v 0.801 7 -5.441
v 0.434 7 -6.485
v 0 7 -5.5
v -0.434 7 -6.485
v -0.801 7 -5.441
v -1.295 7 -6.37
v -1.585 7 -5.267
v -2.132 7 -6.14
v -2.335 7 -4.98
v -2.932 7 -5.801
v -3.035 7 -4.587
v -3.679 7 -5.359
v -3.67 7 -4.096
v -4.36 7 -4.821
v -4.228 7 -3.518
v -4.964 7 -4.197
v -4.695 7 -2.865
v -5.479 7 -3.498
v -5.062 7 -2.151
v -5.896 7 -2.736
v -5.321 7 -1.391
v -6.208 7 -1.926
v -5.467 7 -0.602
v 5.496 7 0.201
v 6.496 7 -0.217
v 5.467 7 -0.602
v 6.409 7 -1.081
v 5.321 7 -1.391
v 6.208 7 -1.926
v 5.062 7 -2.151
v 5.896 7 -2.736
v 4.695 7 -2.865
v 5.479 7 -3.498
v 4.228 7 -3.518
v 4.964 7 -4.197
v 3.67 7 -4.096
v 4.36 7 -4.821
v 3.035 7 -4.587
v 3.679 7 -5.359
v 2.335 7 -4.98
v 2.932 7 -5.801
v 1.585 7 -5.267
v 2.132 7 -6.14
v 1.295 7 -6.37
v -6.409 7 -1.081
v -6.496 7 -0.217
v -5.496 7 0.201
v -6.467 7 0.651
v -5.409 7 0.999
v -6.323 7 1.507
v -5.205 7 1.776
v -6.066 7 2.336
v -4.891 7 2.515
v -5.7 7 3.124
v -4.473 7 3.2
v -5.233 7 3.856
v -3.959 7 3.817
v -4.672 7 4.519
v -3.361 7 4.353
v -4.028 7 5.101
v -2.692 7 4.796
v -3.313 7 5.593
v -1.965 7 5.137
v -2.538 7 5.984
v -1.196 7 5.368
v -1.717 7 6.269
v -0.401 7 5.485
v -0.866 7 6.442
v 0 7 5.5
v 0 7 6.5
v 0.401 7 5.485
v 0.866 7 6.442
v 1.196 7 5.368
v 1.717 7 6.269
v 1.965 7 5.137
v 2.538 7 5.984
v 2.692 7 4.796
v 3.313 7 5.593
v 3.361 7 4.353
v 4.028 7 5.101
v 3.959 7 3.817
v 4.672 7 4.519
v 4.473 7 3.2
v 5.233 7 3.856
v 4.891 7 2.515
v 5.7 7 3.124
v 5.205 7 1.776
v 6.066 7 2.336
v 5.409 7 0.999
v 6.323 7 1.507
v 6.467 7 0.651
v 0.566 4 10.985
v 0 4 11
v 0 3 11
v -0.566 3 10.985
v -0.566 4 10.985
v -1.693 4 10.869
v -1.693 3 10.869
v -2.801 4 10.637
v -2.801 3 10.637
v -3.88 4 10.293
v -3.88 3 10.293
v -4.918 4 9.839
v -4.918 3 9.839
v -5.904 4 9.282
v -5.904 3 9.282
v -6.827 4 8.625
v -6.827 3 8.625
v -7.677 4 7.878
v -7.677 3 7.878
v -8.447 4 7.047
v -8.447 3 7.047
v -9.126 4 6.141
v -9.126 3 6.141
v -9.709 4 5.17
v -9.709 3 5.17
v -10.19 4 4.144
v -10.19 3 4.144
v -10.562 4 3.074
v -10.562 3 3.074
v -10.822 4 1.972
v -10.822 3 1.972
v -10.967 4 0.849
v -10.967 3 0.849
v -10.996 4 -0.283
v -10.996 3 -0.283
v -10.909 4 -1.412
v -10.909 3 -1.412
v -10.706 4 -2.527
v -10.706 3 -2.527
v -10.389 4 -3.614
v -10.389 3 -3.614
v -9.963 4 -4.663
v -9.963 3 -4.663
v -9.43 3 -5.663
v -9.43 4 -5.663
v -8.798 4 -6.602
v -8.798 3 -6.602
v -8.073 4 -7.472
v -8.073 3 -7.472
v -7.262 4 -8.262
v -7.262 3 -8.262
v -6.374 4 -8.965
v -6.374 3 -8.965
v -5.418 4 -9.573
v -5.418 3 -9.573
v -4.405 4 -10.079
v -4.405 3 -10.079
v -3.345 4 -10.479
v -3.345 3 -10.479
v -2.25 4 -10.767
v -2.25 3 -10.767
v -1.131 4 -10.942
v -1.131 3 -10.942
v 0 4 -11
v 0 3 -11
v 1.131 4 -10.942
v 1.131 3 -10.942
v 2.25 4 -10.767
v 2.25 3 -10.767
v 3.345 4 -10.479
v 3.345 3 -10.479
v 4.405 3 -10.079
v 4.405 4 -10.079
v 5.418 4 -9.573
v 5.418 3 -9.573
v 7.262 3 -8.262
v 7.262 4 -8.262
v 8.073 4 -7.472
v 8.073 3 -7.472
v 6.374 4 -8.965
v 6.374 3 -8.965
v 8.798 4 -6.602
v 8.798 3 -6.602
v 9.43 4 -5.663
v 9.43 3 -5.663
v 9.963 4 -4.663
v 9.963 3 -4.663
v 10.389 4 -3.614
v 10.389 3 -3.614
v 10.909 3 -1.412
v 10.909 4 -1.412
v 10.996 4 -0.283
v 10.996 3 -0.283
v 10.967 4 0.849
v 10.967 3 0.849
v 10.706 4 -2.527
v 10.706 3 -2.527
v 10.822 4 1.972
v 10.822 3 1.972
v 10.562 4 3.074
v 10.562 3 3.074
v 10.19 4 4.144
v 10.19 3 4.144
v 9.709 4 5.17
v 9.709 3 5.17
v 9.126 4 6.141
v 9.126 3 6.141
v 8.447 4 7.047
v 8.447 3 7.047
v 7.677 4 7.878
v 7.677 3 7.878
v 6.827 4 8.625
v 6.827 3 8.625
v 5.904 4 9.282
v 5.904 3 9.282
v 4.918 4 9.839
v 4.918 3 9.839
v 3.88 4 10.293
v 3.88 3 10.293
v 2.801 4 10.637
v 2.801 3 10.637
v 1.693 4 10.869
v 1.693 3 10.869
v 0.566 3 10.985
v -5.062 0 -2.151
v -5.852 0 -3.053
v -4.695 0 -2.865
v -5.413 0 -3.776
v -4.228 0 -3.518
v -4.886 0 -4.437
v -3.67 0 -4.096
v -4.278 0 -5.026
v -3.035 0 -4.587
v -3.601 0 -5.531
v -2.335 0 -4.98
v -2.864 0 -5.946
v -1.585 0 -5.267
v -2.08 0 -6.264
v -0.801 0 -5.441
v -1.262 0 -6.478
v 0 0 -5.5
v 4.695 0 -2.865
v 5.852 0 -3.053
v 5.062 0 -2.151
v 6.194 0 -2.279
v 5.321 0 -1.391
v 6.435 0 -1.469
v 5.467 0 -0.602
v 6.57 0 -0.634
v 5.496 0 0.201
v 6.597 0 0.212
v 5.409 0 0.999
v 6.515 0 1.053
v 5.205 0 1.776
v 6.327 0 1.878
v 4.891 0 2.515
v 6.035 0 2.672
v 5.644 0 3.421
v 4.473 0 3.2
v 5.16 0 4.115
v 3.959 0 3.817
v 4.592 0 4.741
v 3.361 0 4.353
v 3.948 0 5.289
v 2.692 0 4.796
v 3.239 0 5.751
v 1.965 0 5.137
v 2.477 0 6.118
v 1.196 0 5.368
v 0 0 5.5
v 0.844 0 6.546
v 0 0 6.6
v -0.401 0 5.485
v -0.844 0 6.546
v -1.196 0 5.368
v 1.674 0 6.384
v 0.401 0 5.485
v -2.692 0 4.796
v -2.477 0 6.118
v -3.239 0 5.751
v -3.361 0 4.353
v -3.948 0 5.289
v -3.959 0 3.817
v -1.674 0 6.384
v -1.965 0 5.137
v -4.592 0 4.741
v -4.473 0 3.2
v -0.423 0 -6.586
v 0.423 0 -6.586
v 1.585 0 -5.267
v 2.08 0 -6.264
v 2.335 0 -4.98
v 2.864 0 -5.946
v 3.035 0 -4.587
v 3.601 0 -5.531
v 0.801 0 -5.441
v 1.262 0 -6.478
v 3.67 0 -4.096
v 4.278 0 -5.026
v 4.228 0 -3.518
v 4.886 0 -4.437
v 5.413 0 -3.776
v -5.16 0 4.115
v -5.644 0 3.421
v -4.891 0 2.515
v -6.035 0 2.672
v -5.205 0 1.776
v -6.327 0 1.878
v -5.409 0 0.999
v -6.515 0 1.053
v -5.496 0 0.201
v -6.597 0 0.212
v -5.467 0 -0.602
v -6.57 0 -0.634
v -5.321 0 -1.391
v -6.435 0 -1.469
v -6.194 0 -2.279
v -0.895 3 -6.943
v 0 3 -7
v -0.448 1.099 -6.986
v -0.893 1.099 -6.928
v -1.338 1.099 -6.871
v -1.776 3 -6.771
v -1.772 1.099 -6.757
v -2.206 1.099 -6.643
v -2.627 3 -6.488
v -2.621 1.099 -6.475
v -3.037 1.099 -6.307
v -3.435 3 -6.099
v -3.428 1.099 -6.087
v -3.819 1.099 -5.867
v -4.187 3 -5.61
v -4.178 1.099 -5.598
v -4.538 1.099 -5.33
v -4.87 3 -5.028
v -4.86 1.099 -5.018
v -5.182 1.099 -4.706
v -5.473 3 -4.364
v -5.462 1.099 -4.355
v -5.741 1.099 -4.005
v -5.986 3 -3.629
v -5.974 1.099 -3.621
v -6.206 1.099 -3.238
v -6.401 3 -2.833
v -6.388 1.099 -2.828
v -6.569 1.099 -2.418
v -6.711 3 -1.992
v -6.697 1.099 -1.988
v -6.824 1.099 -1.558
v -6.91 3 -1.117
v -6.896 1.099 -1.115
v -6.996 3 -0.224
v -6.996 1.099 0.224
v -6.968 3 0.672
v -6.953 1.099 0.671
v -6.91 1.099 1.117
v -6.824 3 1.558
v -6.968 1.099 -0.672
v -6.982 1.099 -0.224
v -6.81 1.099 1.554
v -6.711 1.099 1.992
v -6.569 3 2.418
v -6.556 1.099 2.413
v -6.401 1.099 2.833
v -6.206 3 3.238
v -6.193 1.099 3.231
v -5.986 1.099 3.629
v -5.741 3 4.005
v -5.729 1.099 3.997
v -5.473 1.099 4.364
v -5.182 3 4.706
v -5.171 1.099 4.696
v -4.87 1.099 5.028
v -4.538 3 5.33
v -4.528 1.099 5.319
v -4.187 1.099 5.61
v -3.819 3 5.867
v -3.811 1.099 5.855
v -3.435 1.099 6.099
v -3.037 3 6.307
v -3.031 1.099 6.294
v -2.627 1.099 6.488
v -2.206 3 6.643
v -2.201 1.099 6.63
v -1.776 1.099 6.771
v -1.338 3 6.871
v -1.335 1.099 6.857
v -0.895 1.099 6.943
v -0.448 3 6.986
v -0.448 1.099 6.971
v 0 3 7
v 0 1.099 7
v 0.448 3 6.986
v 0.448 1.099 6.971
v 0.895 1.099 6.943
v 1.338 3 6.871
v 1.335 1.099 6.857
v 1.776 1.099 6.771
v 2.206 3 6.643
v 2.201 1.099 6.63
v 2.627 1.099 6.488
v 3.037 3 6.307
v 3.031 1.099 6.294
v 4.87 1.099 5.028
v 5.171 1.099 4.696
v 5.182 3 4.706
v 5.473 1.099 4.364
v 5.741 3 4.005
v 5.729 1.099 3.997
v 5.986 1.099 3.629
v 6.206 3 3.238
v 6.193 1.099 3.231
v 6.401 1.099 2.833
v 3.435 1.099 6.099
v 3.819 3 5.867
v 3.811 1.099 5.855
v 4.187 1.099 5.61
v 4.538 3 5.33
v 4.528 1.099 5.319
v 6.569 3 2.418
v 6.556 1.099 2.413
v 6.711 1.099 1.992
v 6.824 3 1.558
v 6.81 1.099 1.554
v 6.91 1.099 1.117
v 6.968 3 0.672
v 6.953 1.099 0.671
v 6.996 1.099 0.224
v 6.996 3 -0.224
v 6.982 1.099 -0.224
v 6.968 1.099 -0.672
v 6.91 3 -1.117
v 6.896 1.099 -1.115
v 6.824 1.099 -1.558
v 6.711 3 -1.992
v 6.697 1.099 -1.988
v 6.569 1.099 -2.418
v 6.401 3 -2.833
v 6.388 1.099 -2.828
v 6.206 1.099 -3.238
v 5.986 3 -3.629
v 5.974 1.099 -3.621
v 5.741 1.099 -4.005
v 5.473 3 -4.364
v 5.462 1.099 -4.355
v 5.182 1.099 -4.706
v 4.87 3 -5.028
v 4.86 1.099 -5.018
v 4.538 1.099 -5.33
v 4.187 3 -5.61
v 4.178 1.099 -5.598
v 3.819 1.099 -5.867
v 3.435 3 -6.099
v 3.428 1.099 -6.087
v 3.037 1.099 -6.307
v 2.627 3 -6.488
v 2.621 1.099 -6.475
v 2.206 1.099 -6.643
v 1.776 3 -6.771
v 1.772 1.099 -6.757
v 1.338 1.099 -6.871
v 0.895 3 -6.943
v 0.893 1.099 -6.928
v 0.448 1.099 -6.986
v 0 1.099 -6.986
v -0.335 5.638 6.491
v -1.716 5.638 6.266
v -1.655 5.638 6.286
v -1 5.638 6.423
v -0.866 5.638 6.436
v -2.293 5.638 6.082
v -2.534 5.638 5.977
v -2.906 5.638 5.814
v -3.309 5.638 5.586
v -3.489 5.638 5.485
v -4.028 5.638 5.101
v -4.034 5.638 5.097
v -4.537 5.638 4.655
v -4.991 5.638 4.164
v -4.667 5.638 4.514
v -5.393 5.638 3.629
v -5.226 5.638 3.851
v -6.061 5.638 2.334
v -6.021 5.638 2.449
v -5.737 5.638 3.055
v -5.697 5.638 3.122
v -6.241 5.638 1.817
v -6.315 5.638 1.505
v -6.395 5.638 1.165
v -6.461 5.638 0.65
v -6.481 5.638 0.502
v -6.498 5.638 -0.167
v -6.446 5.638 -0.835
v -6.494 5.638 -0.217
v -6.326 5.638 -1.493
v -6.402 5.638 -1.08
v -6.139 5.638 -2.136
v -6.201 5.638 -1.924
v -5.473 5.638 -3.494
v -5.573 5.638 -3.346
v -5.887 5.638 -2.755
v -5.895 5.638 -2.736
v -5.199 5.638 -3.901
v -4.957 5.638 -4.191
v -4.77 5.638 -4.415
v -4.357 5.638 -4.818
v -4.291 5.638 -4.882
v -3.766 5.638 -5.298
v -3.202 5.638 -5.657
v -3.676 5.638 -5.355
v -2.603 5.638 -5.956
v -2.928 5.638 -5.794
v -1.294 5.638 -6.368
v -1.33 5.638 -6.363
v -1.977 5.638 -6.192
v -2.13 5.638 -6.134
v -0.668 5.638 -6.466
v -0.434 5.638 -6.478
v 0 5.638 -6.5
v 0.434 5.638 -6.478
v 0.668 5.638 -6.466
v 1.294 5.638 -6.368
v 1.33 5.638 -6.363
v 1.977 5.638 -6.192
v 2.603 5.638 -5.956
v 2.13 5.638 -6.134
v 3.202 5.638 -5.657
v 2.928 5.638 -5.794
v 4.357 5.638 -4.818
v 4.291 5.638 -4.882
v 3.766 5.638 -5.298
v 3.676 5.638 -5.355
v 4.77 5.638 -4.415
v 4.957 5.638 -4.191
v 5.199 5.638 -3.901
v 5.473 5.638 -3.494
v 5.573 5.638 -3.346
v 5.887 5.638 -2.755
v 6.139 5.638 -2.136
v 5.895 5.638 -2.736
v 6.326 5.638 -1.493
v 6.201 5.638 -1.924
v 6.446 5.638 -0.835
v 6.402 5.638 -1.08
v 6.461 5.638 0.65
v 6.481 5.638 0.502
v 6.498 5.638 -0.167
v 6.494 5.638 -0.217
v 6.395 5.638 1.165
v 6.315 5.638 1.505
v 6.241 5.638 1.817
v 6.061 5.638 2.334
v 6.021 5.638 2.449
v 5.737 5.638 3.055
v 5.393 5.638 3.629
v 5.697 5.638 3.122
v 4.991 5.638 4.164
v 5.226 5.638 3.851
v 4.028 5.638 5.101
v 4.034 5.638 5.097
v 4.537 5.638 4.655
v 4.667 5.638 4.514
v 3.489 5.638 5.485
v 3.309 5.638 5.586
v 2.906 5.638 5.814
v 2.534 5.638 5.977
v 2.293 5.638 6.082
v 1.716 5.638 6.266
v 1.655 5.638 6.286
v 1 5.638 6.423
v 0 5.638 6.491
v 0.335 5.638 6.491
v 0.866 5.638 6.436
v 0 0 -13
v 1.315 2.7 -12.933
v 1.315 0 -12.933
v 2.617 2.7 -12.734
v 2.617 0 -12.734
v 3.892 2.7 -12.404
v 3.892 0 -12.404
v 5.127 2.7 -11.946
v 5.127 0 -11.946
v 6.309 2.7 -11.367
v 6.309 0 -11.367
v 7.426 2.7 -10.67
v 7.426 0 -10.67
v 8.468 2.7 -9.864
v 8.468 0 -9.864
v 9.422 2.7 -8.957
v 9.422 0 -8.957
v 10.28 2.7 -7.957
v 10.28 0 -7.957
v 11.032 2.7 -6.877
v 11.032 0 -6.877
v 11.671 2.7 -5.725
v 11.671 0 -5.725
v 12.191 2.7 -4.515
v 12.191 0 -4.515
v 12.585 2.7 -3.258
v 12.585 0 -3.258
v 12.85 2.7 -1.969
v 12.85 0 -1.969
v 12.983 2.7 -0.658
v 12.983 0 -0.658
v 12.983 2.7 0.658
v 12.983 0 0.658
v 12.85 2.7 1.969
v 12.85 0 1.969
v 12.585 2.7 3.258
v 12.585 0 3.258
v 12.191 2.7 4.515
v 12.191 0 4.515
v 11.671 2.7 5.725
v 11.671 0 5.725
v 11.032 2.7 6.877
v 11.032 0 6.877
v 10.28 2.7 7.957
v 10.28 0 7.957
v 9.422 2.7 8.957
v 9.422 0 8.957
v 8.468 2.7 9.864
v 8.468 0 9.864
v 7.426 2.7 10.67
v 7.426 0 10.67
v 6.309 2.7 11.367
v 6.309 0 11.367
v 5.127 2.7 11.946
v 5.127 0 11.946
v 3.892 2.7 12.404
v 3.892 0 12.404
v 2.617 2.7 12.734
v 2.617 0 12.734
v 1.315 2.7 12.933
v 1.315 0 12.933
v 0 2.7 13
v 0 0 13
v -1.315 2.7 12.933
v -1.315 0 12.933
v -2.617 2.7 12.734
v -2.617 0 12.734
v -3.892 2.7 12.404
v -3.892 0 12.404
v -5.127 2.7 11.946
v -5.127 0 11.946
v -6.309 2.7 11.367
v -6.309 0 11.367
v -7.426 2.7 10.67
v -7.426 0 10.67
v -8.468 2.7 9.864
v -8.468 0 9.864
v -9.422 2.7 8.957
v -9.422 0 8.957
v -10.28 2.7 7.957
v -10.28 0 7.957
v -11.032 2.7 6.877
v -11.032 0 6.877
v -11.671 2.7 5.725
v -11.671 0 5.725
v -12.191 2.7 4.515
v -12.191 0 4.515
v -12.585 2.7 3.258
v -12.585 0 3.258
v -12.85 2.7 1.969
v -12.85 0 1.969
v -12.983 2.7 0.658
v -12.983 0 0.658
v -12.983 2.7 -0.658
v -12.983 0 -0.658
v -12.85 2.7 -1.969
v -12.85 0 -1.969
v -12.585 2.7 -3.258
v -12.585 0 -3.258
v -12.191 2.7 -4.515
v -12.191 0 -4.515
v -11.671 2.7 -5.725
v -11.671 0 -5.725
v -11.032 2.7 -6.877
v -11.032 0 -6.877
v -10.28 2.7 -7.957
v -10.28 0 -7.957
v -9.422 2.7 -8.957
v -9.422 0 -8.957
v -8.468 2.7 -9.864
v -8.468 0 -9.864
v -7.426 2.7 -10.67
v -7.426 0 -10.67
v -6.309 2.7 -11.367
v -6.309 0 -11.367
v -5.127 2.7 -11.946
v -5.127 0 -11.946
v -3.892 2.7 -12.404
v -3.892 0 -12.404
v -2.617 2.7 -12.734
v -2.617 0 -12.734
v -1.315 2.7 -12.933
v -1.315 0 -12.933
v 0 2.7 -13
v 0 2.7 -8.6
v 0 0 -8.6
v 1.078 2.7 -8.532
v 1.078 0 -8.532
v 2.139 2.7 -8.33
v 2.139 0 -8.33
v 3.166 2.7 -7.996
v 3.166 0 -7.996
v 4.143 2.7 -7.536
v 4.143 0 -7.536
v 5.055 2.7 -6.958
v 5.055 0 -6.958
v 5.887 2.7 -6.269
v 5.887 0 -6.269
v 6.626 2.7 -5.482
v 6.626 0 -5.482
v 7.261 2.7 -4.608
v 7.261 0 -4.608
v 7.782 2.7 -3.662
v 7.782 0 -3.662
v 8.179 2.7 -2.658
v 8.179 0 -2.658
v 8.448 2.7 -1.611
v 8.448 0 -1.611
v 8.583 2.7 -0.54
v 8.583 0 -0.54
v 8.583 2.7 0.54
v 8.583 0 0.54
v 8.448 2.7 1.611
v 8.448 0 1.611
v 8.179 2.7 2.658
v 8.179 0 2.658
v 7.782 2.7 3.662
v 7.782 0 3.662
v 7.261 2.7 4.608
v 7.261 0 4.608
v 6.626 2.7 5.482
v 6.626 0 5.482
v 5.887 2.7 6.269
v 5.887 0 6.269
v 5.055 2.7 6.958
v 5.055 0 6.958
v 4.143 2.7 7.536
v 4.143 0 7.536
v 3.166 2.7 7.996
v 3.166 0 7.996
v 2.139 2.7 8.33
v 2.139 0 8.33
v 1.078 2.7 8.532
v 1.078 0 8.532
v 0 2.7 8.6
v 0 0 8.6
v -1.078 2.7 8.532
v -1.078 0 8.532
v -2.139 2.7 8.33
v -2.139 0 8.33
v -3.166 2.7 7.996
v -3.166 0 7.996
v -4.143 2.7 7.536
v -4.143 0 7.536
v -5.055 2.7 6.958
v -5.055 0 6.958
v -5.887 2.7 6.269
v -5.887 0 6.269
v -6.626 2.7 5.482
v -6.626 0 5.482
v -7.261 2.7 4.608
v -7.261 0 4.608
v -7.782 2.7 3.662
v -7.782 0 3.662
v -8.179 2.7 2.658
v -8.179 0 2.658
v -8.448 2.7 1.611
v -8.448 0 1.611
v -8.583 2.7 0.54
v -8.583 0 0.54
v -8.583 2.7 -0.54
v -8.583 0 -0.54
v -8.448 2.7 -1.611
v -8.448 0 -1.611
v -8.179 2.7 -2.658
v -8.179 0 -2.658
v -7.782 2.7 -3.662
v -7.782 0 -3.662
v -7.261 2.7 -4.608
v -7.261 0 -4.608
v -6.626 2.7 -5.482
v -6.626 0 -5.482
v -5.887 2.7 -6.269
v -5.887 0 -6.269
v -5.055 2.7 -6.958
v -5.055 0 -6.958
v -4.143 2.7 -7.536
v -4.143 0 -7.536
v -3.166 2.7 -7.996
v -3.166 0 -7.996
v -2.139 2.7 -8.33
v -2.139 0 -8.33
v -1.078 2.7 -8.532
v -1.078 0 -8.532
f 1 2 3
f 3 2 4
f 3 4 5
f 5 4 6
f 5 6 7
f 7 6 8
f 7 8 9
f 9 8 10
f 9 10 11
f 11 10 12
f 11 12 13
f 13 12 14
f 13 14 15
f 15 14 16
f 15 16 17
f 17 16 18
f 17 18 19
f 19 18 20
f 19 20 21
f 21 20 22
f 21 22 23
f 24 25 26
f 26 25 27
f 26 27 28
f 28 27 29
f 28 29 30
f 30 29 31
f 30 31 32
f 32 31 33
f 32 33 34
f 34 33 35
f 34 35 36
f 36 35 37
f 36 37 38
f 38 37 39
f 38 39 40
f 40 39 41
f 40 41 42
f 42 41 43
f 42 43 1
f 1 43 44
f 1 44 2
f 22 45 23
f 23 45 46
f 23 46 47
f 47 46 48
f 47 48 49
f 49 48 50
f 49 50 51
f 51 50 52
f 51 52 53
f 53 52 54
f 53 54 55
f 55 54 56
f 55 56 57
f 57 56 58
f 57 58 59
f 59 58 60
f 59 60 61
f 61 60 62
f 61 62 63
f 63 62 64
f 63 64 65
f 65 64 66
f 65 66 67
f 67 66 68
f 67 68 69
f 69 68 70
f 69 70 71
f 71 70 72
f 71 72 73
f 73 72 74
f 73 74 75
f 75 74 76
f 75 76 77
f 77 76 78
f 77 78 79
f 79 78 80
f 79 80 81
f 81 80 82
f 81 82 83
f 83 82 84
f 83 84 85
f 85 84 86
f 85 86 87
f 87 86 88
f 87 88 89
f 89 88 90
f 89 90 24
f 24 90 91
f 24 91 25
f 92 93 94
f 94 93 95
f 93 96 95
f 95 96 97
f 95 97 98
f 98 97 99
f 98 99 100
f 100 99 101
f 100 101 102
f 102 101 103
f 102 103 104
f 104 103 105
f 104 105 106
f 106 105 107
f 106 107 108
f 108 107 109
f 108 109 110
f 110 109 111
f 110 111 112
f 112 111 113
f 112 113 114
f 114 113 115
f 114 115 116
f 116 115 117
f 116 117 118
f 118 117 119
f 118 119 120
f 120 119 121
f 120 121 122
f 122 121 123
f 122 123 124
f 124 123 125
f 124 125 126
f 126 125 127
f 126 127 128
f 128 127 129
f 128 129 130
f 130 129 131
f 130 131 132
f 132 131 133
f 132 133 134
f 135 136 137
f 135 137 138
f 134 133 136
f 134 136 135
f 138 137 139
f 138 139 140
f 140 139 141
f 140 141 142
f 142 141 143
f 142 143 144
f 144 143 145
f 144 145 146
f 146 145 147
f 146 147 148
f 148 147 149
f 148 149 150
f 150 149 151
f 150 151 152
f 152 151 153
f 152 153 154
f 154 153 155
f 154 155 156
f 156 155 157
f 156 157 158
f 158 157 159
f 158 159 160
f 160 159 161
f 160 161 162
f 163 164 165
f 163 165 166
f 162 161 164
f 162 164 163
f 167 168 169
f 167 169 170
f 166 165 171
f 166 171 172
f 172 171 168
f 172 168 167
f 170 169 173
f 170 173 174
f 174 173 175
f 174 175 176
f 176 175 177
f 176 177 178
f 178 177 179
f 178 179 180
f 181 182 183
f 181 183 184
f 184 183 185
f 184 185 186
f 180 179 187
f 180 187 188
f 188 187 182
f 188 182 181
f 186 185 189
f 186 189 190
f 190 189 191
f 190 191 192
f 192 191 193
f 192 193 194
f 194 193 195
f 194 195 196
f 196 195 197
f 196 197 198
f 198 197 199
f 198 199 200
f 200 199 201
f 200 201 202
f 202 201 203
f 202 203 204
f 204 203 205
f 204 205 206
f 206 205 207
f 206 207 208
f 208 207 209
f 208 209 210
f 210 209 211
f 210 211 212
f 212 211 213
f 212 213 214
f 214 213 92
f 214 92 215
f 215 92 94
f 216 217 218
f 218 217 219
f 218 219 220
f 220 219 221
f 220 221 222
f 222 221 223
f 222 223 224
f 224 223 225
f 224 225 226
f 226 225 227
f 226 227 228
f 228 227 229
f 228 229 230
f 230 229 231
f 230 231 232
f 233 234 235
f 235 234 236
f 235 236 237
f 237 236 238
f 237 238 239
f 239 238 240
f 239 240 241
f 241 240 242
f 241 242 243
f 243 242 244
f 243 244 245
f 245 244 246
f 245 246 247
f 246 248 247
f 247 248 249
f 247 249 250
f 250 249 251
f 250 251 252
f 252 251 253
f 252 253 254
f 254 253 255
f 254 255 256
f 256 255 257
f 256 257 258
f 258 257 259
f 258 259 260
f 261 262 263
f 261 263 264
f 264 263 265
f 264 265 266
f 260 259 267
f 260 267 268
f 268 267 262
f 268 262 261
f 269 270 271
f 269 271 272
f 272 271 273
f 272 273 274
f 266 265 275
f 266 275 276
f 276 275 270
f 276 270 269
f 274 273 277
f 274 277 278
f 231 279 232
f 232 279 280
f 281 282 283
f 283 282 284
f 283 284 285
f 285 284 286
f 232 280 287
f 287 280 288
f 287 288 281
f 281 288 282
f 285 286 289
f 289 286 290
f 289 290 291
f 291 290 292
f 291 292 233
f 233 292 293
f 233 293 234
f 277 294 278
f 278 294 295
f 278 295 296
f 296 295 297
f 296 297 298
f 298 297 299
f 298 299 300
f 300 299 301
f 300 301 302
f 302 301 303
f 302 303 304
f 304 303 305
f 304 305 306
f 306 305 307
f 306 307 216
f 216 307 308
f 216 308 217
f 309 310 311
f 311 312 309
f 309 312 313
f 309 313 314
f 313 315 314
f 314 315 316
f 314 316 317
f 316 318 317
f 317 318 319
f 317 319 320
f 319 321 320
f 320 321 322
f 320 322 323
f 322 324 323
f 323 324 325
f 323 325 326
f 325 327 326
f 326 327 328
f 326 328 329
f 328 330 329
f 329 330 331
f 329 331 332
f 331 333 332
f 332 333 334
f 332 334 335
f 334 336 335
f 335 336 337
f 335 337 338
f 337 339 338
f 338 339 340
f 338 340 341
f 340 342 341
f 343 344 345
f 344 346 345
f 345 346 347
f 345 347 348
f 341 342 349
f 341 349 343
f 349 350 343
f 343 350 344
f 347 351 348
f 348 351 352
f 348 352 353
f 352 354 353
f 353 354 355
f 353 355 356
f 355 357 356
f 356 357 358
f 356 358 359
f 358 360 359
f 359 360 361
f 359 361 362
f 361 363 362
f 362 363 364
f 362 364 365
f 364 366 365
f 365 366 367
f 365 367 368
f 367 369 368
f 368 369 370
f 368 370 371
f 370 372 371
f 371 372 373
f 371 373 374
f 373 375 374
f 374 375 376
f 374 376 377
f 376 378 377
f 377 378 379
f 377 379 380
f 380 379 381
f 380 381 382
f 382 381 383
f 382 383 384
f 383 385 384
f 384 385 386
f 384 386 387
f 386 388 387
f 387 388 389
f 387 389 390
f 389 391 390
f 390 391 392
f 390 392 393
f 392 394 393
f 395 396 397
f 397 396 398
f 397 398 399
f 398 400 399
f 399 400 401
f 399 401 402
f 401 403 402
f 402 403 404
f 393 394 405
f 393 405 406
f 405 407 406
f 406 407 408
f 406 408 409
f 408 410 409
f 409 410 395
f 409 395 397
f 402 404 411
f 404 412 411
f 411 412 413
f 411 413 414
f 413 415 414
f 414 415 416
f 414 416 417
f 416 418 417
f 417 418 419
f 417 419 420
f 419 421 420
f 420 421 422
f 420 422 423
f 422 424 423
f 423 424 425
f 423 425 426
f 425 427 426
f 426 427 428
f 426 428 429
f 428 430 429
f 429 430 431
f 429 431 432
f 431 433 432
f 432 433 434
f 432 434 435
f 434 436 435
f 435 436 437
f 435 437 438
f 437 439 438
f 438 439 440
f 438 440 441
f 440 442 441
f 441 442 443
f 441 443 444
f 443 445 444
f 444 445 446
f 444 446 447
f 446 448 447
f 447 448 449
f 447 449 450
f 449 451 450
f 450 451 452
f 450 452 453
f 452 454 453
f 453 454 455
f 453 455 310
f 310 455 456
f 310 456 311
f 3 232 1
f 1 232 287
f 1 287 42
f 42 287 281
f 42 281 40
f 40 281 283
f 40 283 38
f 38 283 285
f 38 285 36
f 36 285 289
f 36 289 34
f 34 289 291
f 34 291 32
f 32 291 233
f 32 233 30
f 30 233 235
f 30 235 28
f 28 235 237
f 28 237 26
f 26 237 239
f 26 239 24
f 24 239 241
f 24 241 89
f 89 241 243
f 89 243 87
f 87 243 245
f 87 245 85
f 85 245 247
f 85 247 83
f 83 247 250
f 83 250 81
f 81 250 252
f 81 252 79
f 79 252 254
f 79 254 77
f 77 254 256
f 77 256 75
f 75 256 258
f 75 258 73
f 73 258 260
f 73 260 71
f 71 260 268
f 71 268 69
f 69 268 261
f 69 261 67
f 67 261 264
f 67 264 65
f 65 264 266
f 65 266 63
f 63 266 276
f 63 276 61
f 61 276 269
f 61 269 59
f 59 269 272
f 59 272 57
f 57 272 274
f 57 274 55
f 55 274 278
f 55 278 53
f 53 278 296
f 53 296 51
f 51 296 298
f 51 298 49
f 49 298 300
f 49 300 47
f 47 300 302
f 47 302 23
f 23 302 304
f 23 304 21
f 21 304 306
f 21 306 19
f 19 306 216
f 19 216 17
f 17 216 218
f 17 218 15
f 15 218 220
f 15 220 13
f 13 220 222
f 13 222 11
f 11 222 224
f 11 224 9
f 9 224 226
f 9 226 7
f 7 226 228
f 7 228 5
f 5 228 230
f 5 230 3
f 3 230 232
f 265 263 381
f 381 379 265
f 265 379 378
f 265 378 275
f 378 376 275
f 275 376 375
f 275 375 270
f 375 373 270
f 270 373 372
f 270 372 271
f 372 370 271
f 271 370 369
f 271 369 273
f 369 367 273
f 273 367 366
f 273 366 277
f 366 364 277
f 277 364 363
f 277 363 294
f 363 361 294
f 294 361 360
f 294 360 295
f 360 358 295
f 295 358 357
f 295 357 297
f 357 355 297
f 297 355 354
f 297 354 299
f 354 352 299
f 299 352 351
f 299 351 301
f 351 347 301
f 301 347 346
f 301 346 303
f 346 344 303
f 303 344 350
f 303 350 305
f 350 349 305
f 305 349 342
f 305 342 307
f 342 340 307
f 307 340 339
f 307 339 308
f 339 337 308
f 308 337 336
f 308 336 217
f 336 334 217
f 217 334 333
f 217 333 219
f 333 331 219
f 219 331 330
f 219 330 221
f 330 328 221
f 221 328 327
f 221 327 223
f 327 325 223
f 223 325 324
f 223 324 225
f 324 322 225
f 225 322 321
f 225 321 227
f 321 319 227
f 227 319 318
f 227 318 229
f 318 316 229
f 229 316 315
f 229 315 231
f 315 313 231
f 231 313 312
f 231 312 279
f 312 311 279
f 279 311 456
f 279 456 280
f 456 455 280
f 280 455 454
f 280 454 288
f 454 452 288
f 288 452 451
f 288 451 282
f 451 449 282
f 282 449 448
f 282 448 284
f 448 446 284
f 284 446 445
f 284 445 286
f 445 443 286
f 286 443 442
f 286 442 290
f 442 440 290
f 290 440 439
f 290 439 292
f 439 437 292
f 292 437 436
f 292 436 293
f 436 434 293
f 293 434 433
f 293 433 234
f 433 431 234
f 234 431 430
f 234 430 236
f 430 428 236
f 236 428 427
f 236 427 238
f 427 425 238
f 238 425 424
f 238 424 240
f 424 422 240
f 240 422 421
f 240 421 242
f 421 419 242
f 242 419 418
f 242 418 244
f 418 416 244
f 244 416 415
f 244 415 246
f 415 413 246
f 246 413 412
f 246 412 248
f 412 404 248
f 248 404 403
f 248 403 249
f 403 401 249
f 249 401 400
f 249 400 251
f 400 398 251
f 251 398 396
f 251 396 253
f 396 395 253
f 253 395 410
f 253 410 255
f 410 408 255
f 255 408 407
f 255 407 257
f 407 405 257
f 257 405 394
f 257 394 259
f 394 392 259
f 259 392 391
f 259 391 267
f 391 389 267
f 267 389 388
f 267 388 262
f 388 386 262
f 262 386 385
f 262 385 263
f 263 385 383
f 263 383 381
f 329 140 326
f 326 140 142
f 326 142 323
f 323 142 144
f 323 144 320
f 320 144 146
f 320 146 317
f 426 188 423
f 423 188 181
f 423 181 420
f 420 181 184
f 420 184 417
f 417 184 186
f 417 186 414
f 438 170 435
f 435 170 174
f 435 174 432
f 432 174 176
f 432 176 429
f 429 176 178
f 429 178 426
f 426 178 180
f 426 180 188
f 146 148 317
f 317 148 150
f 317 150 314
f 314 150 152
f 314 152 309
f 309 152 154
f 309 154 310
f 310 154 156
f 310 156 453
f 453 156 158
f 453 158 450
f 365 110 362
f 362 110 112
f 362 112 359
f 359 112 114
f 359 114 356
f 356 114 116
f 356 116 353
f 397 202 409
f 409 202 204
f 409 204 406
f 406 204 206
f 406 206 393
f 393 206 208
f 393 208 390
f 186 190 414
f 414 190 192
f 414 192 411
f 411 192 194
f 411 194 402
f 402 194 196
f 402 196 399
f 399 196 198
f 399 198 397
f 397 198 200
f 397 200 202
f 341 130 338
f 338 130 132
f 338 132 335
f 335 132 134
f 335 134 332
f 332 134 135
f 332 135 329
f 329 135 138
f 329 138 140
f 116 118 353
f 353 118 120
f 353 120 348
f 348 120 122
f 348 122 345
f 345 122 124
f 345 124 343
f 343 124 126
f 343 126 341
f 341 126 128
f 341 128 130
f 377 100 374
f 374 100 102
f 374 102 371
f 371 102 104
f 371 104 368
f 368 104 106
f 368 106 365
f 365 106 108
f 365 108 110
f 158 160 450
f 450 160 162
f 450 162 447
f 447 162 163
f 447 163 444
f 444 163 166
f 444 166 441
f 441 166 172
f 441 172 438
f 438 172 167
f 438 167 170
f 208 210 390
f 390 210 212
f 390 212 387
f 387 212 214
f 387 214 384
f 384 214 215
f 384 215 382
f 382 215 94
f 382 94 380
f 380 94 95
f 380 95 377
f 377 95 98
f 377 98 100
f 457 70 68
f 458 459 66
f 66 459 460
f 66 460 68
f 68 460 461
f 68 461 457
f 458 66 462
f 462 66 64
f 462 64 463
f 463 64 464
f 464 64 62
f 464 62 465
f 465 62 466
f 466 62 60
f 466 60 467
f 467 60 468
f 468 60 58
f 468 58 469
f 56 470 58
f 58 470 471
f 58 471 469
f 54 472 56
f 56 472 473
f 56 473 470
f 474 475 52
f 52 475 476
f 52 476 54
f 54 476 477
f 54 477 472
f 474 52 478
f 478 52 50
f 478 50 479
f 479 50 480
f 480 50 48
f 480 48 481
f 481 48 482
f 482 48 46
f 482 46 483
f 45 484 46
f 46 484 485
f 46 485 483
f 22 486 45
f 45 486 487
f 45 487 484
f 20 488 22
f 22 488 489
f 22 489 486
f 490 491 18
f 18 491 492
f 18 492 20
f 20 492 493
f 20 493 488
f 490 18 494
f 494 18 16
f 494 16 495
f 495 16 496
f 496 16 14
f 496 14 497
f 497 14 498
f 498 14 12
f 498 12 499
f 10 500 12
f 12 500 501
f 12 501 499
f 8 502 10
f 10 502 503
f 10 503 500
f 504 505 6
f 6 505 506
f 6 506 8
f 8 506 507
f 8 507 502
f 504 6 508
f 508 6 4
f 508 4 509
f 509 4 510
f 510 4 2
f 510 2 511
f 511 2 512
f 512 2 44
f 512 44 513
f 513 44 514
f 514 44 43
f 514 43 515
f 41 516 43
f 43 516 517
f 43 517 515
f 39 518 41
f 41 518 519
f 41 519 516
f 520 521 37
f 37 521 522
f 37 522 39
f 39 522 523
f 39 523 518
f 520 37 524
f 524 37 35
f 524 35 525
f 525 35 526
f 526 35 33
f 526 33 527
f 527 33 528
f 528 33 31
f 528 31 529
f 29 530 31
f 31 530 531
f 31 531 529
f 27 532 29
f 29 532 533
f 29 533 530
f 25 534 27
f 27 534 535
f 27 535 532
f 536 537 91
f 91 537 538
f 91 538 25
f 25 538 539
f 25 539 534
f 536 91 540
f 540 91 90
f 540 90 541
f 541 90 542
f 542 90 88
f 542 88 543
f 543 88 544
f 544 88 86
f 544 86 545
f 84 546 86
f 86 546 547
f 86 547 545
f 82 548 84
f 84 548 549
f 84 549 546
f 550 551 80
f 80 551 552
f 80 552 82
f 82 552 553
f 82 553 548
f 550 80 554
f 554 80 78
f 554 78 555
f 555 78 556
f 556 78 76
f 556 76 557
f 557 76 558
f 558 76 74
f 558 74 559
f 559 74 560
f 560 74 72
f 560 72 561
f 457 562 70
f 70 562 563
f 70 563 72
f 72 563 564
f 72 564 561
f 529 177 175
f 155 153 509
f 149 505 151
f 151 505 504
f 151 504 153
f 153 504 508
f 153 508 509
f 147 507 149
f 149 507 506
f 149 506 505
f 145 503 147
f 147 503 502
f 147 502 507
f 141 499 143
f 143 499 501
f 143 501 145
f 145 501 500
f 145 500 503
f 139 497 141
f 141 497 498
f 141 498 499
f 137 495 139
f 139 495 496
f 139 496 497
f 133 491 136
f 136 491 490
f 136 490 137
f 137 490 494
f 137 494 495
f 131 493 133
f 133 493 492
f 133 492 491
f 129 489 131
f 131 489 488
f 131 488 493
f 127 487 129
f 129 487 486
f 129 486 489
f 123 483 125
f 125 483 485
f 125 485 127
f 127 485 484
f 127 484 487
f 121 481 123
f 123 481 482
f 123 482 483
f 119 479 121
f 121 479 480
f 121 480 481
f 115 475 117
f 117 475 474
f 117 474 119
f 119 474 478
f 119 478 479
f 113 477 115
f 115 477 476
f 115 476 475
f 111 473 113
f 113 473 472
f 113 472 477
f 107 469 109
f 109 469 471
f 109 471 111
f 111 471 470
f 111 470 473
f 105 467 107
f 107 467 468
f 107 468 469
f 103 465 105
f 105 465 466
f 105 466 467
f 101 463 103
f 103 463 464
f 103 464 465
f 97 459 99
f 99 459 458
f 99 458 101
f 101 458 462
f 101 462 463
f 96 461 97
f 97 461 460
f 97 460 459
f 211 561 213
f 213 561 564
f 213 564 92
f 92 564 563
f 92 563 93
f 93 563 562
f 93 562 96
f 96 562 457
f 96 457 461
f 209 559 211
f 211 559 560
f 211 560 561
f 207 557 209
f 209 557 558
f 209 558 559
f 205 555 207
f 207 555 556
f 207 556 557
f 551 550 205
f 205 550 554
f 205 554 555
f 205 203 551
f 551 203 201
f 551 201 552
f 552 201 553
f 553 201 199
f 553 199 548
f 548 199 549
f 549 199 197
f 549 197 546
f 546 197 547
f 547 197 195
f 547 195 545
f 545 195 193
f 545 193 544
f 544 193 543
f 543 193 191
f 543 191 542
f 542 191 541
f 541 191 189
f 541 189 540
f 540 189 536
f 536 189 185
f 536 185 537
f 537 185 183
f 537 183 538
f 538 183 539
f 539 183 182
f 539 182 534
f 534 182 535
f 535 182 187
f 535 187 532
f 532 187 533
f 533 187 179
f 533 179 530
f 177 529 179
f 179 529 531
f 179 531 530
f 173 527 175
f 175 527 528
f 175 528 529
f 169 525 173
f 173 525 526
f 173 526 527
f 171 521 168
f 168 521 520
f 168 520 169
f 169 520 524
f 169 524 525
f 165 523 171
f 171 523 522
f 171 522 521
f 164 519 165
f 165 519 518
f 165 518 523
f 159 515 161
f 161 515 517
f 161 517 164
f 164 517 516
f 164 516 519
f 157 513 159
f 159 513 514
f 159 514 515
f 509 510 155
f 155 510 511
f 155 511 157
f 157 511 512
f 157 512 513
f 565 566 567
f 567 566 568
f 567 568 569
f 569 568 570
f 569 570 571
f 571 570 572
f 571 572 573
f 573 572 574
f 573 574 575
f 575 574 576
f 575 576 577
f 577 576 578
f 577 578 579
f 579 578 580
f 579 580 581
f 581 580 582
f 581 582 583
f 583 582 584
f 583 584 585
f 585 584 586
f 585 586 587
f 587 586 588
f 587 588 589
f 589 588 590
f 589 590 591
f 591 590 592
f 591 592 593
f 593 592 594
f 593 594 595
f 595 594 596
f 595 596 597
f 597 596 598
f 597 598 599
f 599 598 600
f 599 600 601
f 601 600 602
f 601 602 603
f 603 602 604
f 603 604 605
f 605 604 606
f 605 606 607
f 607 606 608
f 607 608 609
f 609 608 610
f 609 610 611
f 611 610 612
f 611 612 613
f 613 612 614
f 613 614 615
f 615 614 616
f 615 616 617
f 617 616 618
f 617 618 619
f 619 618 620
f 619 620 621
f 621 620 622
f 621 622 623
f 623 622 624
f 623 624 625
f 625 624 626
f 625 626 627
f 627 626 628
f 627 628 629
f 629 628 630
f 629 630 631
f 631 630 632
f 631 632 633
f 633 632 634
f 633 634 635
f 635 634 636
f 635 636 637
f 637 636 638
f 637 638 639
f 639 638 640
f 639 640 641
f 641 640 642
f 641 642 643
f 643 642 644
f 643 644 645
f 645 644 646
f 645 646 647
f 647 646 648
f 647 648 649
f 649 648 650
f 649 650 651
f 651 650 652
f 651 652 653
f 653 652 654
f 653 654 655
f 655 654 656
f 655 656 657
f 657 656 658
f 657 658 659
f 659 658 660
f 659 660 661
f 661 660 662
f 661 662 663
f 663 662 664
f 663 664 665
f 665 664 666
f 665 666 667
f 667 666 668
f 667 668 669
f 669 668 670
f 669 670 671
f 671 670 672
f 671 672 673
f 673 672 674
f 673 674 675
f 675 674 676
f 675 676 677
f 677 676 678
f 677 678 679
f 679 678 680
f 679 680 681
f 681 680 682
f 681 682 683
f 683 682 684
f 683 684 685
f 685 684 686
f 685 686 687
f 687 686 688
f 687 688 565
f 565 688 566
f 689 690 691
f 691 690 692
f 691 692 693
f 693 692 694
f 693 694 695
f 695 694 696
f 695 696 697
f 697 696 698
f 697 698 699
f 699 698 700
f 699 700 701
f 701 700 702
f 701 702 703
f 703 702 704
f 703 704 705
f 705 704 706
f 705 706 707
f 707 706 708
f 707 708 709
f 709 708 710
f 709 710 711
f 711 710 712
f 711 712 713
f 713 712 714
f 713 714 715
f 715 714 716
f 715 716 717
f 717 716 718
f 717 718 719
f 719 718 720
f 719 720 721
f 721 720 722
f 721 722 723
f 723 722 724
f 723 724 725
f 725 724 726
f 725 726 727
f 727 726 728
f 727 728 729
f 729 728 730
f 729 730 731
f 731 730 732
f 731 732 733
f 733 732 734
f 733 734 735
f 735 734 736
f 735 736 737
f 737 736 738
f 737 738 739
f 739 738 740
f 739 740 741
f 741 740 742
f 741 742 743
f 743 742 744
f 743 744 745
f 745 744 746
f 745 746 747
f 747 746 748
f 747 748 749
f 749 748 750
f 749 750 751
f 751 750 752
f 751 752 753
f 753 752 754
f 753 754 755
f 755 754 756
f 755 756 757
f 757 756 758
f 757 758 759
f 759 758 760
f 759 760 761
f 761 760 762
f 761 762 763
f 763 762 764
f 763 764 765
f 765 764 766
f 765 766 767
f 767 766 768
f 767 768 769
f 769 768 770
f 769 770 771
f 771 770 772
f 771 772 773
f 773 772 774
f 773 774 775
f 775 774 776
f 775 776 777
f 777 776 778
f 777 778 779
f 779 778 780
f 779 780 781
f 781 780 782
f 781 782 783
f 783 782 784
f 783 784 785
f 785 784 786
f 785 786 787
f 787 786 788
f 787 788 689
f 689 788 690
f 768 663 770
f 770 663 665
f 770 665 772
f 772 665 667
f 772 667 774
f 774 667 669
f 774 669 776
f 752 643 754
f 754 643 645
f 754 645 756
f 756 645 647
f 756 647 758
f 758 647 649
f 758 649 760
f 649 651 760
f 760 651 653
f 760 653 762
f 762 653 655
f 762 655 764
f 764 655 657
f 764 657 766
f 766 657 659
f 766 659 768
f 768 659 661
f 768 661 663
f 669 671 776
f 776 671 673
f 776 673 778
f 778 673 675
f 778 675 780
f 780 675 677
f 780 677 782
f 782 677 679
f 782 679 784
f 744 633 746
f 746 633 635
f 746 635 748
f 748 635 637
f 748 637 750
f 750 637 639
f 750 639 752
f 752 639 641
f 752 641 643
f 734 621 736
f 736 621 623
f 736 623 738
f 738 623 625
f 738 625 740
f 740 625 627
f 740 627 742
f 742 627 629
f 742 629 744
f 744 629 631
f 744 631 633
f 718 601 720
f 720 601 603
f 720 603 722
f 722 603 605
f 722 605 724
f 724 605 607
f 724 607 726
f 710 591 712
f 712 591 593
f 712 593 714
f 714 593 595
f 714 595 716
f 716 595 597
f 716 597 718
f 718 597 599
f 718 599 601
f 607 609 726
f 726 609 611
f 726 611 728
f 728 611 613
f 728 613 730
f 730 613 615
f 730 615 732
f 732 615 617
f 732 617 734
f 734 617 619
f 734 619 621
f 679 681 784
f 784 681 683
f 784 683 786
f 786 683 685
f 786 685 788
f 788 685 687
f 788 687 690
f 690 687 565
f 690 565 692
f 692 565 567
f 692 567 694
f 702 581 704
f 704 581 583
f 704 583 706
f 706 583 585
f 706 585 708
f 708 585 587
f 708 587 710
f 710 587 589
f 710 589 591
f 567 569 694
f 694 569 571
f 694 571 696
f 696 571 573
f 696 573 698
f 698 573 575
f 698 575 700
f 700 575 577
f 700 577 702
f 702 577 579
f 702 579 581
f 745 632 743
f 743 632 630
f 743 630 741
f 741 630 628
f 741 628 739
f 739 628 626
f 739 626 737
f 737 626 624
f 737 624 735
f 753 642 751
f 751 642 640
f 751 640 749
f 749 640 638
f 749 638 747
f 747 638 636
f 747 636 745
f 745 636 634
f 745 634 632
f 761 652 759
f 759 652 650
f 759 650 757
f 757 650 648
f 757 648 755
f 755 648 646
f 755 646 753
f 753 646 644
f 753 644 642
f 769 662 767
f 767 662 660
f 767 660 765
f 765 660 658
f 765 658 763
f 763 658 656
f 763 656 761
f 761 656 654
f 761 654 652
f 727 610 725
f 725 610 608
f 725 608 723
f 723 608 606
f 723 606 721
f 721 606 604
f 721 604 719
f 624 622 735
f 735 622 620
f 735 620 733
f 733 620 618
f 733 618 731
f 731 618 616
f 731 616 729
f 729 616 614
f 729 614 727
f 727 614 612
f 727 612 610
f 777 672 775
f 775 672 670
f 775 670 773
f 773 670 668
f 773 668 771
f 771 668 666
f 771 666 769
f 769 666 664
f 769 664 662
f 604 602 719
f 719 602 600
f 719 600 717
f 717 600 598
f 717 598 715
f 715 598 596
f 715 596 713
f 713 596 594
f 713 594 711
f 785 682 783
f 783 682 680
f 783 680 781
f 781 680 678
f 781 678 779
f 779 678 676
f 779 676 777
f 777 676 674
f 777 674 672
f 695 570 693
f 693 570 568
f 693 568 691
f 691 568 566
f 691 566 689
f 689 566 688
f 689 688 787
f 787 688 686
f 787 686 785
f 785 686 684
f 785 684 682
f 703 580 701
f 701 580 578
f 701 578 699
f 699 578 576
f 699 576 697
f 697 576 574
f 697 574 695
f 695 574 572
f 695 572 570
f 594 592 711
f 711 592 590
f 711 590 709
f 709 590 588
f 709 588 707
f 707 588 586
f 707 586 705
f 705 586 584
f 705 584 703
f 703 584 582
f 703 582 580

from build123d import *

# Parameters (mm, degrees)
SKETCH1_R           = 7
SKETCH1_R_2         = 5.5
BOSS_EXTRUDE1_DEPTH = 3
CHAMFER1_SIZE       = 0.4
CHAMFER1_SIZE2      = 1.098990968
SKETCH2_R           = 11
SKETCH2_R_2         = 5.5
BOSS_EXTRUDE2_DEPTH = 4
SKETCH3_OUTSIDE_W   = 30.378
SKETCH3_OUTSIDE_H   = 30.378
SKETCH3_OUTSIDE_R   = 6.5
CUT_EXTRUDE1_DEPTH  = 1
CHAMFER2_SIZE       = 2
CHAMFER2_SIZE_2     = 5.494954839
SKETCH5_R           = 13
SKETCH5_R_2         = 8.6
BOSS_EXTRUDE3_DEPTH = 2.7


with BuildPart() as part:
    # Sketch1 → Boss-Extrude1 (new body)
    with BuildSketch(Plane(origin=(0, 0, 0), x_dir=(1, 0, 0), z_dir=(0, 1, 0))):
        with Locations(Location((0, 0, 0), (0, 0, 270))):
            Circle(SKETCH1_R)
        with Locations(Location((0, 0, 0), (0, 0, 270))):
            Circle(SKETCH1_R_2, mode=Mode.SUBTRACT)
    extrude(amount=BOSS_EXTRUDE1_DEPTH)

    # Chamfer1
    chamfer1_edges = [part.edges().sort_by_distance(p)[0] for p in [
        (0, 0, -7),
    ]]
    chamfer1_side = [part.faces().sort_by_distance(p)[0] for p in [
        (0, 0, -6.802010101),
    ]]
    chamfer(chamfer1_edges, length=CHAMFER1_SIZE, length2=CHAMFER1_SIZE2, reference=chamfer1_side[0])

    # Sketch2 → Boss-Extrude2 (add)
    with BuildSketch(Plane(origin=(0, 3, 0), x_dir=(1, 0, 0), z_dir=(0, 1, 0))):
        with Locations(Location((0, 0, 0), (0, 0, 270))):
            Circle(SKETCH2_R)
        with Locations(Location((0, 0, 0), (0, 0, 270))):
            Circle(SKETCH2_R_2, mode=Mode.SUBTRACT)
    extrude(amount=BOSS_EXTRUDE2_DEPTH)

    # Sketch3 outside → Cut-Extrude1 (cut)
    with BuildSketch(Plane(origin=(0, 7, 0), x_dir=(1, 0, 0), z_dir=(0, 1, 0))):
        Rectangle(SKETCH3_OUTSIDE_W, SKETCH3_OUTSIDE_H)
        with Locations(Location((0, 0, 0), (0, 0, 270))):
            Circle(SKETCH3_OUTSIDE_R, mode=Mode.SUBTRACT)
    extrude(amount=-CUT_EXTRUDE1_DEPTH, mode=Mode.SUBTRACT)

    # Chamfer2
    # the kernel refuses this chamfer: 5.494954839, 2 mm, written as the material it takes off along each edge
    with BuildSketch(Plane(origin=(0, 6, 0), x_dir=(0, 0, 1), z_dir=(1, 0, 0))) as chamfer2_piece_1_section:
        Polygon((11, CHAMFER2_SIZE), (11 - CHAMFER2_SIZE_2, 0), (11, 0), align=None)
    chamfer2_piece_1 = revolve(axis=Axis((0, 6, 0), (0, -1, 0)), mode=Mode.PRIVATE)
    chamfer2_piece_1 = chamfer2_piece_1 - Plane(origin=(0, 4.848037637, 0), x_dir=(0, 0, 1), z_dir=(0, 1, 0)) * Cylinder(6.5, 44, mode=Mode.PRIVATE)
    add(chamfer2_piece_1, mode=Mode.SUBTRACT)


with BuildPart() as body_2:
    # Sketch5 → Boss-Extrude3 (new body)
    with BuildSketch(Plane.XZ):
        with Locations(Location((0, 0, 0), (0, 0, 270))):
            Circle(SKETCH5_R)
        with Locations(Location((0, 0, 0), (0, 0, 270))):
            Circle(SKETCH5_R_2, mode=Mode.SUBTRACT)
    extrude(amount=-BOSS_EXTRUDE3_DEPTH)


solid = Compound([part.part, body_2.part])
